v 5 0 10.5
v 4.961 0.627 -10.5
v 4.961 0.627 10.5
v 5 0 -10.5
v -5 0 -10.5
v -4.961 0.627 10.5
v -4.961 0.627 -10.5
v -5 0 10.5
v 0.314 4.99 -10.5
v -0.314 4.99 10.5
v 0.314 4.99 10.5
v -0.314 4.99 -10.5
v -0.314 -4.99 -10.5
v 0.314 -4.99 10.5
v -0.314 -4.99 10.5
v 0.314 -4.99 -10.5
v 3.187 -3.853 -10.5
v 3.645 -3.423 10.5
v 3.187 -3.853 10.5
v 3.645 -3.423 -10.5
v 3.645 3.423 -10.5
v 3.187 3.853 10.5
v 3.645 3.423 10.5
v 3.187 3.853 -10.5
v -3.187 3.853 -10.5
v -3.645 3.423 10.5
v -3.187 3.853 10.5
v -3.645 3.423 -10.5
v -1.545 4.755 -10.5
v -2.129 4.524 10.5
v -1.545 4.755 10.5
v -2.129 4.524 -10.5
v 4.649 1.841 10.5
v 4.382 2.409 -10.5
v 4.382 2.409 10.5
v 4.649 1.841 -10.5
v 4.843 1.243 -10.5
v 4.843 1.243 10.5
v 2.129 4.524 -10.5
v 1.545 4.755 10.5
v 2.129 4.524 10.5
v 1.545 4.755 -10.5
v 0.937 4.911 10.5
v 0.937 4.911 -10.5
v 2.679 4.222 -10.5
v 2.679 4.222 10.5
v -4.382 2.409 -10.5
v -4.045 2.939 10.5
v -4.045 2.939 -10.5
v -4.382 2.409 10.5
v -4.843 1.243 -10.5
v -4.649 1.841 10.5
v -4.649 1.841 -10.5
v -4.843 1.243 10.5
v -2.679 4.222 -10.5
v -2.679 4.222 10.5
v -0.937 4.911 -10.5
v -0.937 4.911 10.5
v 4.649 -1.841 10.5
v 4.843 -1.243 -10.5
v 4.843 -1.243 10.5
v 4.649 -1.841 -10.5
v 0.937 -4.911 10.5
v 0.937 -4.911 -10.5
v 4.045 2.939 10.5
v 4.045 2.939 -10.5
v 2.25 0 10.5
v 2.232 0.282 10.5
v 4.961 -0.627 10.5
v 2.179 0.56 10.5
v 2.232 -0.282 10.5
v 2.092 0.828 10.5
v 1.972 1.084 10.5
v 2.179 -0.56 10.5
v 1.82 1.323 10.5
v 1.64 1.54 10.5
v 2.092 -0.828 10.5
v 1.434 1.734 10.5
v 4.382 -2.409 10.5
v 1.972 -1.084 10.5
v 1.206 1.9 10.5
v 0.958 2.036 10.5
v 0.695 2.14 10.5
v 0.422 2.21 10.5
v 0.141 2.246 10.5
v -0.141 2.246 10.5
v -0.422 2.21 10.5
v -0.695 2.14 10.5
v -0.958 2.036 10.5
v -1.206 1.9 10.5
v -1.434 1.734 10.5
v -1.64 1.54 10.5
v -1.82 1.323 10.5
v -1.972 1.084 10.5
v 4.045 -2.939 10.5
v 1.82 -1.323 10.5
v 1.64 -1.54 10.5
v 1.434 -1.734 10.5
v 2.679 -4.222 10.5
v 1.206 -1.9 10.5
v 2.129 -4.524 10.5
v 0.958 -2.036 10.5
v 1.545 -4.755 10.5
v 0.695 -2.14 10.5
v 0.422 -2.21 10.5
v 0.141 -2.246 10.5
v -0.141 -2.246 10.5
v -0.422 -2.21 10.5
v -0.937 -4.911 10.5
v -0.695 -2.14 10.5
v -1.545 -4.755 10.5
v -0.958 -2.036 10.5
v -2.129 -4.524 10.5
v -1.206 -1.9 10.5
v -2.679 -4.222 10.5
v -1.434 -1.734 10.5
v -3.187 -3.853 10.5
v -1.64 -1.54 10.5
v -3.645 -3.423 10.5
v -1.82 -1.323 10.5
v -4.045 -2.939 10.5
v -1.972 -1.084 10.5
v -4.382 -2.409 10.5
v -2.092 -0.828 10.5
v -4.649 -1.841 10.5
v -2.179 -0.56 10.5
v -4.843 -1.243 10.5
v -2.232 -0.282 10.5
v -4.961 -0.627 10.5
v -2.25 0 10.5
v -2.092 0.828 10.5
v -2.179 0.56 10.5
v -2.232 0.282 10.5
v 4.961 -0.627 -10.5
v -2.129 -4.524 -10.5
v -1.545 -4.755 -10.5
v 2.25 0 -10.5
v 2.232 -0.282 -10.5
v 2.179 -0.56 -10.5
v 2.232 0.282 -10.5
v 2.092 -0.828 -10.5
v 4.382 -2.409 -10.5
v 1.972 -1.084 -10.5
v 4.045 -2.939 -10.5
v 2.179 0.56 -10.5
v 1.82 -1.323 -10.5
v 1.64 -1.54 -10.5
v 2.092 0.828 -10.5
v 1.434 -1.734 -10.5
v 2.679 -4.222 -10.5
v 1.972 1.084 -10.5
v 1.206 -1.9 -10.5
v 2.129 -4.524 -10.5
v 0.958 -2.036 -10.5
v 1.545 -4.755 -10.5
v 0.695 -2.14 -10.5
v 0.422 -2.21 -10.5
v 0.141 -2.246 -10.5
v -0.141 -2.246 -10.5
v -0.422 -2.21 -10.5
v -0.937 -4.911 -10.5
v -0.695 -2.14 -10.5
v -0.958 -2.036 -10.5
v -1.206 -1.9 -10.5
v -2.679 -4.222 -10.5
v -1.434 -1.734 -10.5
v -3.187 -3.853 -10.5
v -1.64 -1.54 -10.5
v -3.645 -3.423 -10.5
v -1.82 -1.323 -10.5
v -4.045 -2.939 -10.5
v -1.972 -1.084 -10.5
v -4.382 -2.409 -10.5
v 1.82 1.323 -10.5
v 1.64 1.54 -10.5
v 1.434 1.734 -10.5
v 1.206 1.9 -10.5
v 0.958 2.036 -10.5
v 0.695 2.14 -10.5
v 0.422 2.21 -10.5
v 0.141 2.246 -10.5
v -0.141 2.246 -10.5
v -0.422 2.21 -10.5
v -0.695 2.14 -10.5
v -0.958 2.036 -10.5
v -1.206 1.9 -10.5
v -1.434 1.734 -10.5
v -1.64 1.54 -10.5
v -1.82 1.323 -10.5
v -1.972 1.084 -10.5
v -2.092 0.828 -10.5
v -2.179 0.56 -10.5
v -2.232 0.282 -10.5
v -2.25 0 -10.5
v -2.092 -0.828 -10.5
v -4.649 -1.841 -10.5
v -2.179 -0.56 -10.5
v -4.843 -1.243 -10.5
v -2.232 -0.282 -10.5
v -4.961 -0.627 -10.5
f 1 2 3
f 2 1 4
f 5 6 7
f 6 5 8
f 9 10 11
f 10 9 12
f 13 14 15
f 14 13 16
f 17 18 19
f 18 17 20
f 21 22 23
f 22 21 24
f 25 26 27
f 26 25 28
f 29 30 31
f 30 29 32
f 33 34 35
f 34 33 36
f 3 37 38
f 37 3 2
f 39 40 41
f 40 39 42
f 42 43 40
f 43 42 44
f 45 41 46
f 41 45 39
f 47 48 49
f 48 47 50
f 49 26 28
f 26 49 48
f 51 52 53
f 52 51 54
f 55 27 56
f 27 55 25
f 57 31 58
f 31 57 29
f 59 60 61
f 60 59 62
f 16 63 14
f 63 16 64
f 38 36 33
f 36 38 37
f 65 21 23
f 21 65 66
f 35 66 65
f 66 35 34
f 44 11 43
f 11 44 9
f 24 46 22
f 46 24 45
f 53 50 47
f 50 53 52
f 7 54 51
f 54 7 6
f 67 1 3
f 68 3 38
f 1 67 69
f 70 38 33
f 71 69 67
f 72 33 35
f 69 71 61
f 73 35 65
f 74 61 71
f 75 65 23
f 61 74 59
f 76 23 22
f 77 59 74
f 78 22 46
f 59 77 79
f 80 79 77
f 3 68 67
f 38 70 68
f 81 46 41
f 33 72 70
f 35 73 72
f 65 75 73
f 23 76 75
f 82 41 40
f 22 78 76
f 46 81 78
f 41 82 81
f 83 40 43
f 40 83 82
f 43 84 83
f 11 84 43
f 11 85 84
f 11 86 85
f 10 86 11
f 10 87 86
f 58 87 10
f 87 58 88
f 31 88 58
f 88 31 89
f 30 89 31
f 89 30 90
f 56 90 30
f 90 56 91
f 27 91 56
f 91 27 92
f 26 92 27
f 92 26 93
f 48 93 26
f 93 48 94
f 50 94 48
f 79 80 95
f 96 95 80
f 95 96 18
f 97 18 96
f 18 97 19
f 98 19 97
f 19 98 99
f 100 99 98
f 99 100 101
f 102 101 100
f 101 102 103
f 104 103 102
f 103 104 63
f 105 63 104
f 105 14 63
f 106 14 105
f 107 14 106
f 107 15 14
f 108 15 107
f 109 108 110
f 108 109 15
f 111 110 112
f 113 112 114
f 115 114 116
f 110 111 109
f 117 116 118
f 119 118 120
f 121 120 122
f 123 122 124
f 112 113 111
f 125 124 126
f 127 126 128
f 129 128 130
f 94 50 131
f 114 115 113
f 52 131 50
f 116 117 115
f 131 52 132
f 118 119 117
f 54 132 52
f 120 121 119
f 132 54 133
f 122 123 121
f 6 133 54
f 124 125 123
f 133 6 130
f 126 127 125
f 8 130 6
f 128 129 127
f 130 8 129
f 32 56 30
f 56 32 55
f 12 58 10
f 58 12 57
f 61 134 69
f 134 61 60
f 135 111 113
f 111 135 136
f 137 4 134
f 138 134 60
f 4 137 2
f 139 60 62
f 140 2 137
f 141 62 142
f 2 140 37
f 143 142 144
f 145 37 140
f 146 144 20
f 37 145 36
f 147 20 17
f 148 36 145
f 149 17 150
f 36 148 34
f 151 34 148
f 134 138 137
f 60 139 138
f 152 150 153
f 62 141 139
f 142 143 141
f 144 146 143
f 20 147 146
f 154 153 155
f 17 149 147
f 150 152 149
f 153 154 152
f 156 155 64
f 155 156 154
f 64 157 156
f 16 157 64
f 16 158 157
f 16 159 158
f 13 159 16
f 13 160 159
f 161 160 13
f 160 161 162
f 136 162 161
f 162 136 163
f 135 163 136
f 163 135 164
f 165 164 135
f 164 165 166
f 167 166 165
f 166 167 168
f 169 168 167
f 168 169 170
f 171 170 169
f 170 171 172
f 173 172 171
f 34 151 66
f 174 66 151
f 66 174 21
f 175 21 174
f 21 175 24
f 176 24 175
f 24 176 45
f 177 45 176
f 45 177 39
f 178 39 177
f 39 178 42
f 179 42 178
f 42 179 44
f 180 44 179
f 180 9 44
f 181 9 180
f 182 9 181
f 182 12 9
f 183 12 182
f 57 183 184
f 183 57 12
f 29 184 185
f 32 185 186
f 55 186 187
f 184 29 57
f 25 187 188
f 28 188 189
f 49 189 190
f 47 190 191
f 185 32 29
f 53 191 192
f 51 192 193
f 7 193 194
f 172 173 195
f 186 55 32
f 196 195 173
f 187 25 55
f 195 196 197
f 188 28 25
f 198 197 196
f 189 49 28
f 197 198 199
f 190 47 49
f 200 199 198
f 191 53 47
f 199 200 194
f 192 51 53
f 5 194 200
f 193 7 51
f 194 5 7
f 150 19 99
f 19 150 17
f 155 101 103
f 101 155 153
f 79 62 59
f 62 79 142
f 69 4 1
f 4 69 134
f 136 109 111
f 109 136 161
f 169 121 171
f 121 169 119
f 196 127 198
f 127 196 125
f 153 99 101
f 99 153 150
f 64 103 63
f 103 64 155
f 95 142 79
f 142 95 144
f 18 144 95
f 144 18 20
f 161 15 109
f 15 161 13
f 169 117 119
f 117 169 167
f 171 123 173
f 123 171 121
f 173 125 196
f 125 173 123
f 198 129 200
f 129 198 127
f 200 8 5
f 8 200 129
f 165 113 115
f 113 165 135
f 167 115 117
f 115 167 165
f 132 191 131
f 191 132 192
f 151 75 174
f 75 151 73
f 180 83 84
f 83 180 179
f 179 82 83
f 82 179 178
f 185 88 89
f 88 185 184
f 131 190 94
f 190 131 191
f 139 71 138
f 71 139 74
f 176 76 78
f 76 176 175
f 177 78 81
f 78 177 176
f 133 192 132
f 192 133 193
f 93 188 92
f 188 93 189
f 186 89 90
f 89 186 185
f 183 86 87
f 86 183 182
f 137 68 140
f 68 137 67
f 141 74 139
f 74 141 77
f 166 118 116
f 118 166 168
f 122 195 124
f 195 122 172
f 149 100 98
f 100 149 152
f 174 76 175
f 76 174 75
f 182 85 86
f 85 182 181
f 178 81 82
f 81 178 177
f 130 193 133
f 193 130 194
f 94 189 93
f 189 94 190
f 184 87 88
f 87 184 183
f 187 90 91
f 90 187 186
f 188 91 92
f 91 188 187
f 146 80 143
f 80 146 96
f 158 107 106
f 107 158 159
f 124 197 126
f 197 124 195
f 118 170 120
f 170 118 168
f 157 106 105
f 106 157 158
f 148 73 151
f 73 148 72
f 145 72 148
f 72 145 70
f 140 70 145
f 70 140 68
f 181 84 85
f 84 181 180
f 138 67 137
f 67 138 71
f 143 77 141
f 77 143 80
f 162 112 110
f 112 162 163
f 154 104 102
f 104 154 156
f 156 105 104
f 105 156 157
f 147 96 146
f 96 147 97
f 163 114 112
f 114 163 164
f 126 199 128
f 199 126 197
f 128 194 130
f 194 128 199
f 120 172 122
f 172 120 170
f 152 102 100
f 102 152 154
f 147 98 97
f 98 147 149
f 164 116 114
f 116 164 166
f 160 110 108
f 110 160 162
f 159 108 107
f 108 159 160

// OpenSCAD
$fn = 50;


difference() {
	union() {
		translate(v = [0, 0, -10.5000000000]) {
			cylinder(h = 21, r = 5.0000000000);
		}
	}
	union() {
		translate(v = [0, 0, -100.0000000000]) {
			cylinder(h = 200, r = 2.2500000000);
		}
	}
}
